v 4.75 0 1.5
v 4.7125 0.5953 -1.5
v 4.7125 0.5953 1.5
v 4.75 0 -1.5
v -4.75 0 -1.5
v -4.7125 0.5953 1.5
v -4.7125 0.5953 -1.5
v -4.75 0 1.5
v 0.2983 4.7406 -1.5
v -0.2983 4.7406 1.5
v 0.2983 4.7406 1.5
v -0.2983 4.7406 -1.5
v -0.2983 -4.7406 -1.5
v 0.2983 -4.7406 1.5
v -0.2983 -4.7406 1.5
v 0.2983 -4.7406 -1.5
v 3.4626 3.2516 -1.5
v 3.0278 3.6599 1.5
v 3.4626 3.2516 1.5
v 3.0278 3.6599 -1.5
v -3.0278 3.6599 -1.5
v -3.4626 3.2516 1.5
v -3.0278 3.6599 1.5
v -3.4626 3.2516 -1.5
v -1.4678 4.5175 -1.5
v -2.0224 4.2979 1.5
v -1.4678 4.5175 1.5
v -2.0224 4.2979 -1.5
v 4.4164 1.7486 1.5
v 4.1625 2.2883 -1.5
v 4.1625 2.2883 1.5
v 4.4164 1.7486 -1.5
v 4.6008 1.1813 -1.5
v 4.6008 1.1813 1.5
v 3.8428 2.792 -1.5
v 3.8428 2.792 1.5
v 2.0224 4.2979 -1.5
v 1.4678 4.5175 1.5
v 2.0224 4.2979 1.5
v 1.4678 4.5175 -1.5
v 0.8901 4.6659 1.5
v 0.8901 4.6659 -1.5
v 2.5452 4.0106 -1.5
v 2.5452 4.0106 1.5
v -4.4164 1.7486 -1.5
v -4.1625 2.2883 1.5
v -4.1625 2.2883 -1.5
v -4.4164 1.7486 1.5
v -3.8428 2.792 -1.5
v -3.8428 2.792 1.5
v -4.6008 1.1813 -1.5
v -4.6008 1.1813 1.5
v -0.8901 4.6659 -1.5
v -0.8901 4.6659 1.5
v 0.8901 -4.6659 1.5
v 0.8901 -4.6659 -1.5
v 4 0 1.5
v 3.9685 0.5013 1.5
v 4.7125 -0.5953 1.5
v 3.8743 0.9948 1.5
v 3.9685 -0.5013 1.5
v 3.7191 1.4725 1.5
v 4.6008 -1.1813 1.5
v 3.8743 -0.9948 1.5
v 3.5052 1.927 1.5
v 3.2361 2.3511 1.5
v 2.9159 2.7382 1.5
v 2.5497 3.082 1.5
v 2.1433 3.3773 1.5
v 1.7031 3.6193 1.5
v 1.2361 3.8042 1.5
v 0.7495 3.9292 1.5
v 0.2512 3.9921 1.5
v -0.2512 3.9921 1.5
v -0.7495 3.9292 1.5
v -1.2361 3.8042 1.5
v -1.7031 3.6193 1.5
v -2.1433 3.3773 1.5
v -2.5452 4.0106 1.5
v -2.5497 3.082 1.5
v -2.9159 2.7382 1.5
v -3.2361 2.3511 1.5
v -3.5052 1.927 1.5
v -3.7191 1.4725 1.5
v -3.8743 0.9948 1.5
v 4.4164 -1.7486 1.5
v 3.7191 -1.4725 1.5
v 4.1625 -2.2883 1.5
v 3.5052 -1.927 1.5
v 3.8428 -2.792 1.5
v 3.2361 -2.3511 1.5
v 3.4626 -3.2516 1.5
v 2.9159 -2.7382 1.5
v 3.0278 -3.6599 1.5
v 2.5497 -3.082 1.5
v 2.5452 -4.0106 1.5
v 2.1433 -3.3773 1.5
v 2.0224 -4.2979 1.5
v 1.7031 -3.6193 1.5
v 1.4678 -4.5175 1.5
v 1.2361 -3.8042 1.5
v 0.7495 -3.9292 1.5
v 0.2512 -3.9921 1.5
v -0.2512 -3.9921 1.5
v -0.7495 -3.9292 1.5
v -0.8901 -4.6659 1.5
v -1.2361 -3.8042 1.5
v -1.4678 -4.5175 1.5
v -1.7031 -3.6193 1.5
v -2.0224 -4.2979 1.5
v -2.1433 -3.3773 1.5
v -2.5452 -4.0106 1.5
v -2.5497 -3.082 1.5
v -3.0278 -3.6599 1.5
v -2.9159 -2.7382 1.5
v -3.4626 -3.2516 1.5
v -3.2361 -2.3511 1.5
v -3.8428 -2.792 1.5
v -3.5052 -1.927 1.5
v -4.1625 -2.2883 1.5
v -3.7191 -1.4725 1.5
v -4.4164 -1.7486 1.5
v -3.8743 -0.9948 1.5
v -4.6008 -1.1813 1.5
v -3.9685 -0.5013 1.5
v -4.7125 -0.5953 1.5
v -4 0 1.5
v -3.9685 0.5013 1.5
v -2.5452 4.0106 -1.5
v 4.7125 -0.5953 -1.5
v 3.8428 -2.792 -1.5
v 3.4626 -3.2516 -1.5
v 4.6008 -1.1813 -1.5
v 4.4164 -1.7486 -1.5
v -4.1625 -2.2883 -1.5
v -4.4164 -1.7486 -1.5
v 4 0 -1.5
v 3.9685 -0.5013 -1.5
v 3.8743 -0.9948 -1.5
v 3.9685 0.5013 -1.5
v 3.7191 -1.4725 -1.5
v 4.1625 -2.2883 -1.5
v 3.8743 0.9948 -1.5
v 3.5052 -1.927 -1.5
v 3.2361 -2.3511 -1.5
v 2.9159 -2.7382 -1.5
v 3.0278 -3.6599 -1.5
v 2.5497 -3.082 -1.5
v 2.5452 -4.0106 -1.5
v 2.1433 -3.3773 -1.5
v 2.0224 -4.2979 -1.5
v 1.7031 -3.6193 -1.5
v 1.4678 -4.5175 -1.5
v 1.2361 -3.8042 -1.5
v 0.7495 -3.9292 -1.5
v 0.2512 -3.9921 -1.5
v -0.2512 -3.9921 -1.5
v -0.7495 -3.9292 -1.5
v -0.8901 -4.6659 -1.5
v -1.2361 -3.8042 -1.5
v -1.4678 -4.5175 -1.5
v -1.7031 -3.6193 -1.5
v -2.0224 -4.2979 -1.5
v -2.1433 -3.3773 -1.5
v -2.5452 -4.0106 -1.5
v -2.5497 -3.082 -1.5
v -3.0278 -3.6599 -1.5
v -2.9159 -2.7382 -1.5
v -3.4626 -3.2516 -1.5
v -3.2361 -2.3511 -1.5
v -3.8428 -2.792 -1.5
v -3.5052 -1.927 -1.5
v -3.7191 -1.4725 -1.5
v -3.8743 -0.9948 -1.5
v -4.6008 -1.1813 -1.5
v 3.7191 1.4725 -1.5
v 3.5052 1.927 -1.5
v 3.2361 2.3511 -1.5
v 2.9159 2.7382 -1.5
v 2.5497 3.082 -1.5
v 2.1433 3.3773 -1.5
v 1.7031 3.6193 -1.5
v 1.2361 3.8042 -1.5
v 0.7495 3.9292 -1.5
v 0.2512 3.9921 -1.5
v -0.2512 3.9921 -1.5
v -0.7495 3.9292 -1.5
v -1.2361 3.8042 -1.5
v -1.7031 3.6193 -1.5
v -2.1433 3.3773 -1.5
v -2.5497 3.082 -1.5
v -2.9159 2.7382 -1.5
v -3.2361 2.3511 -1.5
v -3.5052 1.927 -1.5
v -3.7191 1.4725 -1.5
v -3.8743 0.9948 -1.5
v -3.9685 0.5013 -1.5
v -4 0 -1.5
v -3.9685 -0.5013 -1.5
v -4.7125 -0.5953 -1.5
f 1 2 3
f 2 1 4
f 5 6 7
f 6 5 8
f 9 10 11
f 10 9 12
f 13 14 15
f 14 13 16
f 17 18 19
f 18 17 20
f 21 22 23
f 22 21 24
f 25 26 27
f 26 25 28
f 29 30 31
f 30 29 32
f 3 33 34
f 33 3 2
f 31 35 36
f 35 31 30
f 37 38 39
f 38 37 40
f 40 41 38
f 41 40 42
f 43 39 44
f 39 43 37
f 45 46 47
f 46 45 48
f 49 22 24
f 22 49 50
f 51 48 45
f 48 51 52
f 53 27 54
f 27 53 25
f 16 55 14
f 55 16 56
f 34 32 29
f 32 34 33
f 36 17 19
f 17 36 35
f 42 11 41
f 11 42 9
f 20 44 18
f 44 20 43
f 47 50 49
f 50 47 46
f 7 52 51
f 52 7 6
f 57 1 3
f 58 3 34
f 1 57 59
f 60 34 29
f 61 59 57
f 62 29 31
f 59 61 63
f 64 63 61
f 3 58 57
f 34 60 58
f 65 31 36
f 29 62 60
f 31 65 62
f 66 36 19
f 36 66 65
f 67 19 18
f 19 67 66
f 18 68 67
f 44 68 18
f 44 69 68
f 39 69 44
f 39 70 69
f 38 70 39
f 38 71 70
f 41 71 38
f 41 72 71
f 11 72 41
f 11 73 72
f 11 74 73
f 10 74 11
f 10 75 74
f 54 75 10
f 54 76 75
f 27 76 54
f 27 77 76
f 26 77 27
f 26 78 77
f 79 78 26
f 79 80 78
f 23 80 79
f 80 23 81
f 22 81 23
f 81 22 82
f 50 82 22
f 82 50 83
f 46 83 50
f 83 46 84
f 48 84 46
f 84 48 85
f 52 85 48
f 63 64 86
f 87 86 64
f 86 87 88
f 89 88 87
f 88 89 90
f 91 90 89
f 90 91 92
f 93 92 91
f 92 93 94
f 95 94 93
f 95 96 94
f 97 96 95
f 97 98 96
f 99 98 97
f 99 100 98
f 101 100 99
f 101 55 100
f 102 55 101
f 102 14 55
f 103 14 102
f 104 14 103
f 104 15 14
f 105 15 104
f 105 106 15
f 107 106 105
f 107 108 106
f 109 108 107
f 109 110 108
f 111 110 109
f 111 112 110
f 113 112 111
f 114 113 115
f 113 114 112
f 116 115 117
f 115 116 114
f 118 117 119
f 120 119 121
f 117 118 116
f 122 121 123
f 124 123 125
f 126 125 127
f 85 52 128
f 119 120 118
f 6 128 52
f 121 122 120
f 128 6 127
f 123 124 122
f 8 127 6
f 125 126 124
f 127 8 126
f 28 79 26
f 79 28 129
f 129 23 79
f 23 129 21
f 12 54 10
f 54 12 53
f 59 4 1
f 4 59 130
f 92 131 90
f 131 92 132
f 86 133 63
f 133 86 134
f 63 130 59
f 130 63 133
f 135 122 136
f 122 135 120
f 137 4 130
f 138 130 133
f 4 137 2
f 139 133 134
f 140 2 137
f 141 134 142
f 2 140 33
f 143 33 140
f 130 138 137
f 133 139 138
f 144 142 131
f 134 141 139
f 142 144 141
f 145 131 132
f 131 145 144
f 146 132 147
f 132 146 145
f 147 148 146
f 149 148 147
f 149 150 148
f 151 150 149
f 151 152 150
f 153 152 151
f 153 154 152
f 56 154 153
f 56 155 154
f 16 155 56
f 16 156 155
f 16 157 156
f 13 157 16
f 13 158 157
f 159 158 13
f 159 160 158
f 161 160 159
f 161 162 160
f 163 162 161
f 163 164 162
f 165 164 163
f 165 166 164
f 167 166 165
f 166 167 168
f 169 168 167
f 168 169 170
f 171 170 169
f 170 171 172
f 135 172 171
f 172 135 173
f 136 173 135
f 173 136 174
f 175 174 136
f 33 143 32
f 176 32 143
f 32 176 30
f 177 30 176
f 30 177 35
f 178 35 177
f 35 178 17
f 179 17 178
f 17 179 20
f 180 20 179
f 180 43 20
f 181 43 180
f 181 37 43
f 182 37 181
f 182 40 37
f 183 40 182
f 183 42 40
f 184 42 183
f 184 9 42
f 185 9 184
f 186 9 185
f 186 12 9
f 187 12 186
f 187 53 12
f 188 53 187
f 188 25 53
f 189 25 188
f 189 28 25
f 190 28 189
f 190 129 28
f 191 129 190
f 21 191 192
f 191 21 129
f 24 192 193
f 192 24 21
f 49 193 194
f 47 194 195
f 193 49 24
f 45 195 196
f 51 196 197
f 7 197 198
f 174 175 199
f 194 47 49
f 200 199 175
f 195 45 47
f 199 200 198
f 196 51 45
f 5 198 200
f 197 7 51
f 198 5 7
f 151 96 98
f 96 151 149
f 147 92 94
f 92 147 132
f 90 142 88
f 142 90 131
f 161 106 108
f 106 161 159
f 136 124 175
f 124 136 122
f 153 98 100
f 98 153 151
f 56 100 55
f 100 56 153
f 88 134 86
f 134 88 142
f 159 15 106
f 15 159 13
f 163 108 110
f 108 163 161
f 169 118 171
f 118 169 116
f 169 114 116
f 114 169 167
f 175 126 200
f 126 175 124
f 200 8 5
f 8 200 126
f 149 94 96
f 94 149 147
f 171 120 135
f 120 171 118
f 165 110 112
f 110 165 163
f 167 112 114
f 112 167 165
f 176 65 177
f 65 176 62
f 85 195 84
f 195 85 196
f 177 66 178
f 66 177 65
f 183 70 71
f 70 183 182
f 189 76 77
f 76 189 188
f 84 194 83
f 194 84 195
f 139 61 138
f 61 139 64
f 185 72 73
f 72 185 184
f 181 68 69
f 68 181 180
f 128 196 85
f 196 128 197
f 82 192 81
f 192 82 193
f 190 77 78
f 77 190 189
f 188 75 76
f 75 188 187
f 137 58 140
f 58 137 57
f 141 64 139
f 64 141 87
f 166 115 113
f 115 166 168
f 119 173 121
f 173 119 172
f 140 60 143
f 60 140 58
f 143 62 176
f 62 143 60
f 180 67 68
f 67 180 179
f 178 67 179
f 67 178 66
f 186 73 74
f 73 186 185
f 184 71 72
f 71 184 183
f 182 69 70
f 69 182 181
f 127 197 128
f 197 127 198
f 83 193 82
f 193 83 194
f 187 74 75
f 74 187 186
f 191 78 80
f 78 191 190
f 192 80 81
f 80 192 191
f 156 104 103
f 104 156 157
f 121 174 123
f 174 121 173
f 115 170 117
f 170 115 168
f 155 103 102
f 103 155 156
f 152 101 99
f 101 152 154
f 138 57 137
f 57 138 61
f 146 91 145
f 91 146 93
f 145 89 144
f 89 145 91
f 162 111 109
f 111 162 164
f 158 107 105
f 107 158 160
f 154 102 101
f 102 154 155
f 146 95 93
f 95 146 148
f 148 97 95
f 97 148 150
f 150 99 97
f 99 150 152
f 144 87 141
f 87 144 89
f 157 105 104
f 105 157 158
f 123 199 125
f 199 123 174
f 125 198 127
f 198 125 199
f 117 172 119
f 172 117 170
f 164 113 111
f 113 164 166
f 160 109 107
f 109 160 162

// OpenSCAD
$fn = 50;


difference() {
	union() {
		translate(v = [0, 0, -1.5000000000]) {
			cylinder(h = 3, r = 4.7500000000);
		}
	}
	union() {
		translate(v = [0, 0, -100.0000000000]) {
			cylinder(h = 200, r = 4.0000000000);
		}
	}
}
